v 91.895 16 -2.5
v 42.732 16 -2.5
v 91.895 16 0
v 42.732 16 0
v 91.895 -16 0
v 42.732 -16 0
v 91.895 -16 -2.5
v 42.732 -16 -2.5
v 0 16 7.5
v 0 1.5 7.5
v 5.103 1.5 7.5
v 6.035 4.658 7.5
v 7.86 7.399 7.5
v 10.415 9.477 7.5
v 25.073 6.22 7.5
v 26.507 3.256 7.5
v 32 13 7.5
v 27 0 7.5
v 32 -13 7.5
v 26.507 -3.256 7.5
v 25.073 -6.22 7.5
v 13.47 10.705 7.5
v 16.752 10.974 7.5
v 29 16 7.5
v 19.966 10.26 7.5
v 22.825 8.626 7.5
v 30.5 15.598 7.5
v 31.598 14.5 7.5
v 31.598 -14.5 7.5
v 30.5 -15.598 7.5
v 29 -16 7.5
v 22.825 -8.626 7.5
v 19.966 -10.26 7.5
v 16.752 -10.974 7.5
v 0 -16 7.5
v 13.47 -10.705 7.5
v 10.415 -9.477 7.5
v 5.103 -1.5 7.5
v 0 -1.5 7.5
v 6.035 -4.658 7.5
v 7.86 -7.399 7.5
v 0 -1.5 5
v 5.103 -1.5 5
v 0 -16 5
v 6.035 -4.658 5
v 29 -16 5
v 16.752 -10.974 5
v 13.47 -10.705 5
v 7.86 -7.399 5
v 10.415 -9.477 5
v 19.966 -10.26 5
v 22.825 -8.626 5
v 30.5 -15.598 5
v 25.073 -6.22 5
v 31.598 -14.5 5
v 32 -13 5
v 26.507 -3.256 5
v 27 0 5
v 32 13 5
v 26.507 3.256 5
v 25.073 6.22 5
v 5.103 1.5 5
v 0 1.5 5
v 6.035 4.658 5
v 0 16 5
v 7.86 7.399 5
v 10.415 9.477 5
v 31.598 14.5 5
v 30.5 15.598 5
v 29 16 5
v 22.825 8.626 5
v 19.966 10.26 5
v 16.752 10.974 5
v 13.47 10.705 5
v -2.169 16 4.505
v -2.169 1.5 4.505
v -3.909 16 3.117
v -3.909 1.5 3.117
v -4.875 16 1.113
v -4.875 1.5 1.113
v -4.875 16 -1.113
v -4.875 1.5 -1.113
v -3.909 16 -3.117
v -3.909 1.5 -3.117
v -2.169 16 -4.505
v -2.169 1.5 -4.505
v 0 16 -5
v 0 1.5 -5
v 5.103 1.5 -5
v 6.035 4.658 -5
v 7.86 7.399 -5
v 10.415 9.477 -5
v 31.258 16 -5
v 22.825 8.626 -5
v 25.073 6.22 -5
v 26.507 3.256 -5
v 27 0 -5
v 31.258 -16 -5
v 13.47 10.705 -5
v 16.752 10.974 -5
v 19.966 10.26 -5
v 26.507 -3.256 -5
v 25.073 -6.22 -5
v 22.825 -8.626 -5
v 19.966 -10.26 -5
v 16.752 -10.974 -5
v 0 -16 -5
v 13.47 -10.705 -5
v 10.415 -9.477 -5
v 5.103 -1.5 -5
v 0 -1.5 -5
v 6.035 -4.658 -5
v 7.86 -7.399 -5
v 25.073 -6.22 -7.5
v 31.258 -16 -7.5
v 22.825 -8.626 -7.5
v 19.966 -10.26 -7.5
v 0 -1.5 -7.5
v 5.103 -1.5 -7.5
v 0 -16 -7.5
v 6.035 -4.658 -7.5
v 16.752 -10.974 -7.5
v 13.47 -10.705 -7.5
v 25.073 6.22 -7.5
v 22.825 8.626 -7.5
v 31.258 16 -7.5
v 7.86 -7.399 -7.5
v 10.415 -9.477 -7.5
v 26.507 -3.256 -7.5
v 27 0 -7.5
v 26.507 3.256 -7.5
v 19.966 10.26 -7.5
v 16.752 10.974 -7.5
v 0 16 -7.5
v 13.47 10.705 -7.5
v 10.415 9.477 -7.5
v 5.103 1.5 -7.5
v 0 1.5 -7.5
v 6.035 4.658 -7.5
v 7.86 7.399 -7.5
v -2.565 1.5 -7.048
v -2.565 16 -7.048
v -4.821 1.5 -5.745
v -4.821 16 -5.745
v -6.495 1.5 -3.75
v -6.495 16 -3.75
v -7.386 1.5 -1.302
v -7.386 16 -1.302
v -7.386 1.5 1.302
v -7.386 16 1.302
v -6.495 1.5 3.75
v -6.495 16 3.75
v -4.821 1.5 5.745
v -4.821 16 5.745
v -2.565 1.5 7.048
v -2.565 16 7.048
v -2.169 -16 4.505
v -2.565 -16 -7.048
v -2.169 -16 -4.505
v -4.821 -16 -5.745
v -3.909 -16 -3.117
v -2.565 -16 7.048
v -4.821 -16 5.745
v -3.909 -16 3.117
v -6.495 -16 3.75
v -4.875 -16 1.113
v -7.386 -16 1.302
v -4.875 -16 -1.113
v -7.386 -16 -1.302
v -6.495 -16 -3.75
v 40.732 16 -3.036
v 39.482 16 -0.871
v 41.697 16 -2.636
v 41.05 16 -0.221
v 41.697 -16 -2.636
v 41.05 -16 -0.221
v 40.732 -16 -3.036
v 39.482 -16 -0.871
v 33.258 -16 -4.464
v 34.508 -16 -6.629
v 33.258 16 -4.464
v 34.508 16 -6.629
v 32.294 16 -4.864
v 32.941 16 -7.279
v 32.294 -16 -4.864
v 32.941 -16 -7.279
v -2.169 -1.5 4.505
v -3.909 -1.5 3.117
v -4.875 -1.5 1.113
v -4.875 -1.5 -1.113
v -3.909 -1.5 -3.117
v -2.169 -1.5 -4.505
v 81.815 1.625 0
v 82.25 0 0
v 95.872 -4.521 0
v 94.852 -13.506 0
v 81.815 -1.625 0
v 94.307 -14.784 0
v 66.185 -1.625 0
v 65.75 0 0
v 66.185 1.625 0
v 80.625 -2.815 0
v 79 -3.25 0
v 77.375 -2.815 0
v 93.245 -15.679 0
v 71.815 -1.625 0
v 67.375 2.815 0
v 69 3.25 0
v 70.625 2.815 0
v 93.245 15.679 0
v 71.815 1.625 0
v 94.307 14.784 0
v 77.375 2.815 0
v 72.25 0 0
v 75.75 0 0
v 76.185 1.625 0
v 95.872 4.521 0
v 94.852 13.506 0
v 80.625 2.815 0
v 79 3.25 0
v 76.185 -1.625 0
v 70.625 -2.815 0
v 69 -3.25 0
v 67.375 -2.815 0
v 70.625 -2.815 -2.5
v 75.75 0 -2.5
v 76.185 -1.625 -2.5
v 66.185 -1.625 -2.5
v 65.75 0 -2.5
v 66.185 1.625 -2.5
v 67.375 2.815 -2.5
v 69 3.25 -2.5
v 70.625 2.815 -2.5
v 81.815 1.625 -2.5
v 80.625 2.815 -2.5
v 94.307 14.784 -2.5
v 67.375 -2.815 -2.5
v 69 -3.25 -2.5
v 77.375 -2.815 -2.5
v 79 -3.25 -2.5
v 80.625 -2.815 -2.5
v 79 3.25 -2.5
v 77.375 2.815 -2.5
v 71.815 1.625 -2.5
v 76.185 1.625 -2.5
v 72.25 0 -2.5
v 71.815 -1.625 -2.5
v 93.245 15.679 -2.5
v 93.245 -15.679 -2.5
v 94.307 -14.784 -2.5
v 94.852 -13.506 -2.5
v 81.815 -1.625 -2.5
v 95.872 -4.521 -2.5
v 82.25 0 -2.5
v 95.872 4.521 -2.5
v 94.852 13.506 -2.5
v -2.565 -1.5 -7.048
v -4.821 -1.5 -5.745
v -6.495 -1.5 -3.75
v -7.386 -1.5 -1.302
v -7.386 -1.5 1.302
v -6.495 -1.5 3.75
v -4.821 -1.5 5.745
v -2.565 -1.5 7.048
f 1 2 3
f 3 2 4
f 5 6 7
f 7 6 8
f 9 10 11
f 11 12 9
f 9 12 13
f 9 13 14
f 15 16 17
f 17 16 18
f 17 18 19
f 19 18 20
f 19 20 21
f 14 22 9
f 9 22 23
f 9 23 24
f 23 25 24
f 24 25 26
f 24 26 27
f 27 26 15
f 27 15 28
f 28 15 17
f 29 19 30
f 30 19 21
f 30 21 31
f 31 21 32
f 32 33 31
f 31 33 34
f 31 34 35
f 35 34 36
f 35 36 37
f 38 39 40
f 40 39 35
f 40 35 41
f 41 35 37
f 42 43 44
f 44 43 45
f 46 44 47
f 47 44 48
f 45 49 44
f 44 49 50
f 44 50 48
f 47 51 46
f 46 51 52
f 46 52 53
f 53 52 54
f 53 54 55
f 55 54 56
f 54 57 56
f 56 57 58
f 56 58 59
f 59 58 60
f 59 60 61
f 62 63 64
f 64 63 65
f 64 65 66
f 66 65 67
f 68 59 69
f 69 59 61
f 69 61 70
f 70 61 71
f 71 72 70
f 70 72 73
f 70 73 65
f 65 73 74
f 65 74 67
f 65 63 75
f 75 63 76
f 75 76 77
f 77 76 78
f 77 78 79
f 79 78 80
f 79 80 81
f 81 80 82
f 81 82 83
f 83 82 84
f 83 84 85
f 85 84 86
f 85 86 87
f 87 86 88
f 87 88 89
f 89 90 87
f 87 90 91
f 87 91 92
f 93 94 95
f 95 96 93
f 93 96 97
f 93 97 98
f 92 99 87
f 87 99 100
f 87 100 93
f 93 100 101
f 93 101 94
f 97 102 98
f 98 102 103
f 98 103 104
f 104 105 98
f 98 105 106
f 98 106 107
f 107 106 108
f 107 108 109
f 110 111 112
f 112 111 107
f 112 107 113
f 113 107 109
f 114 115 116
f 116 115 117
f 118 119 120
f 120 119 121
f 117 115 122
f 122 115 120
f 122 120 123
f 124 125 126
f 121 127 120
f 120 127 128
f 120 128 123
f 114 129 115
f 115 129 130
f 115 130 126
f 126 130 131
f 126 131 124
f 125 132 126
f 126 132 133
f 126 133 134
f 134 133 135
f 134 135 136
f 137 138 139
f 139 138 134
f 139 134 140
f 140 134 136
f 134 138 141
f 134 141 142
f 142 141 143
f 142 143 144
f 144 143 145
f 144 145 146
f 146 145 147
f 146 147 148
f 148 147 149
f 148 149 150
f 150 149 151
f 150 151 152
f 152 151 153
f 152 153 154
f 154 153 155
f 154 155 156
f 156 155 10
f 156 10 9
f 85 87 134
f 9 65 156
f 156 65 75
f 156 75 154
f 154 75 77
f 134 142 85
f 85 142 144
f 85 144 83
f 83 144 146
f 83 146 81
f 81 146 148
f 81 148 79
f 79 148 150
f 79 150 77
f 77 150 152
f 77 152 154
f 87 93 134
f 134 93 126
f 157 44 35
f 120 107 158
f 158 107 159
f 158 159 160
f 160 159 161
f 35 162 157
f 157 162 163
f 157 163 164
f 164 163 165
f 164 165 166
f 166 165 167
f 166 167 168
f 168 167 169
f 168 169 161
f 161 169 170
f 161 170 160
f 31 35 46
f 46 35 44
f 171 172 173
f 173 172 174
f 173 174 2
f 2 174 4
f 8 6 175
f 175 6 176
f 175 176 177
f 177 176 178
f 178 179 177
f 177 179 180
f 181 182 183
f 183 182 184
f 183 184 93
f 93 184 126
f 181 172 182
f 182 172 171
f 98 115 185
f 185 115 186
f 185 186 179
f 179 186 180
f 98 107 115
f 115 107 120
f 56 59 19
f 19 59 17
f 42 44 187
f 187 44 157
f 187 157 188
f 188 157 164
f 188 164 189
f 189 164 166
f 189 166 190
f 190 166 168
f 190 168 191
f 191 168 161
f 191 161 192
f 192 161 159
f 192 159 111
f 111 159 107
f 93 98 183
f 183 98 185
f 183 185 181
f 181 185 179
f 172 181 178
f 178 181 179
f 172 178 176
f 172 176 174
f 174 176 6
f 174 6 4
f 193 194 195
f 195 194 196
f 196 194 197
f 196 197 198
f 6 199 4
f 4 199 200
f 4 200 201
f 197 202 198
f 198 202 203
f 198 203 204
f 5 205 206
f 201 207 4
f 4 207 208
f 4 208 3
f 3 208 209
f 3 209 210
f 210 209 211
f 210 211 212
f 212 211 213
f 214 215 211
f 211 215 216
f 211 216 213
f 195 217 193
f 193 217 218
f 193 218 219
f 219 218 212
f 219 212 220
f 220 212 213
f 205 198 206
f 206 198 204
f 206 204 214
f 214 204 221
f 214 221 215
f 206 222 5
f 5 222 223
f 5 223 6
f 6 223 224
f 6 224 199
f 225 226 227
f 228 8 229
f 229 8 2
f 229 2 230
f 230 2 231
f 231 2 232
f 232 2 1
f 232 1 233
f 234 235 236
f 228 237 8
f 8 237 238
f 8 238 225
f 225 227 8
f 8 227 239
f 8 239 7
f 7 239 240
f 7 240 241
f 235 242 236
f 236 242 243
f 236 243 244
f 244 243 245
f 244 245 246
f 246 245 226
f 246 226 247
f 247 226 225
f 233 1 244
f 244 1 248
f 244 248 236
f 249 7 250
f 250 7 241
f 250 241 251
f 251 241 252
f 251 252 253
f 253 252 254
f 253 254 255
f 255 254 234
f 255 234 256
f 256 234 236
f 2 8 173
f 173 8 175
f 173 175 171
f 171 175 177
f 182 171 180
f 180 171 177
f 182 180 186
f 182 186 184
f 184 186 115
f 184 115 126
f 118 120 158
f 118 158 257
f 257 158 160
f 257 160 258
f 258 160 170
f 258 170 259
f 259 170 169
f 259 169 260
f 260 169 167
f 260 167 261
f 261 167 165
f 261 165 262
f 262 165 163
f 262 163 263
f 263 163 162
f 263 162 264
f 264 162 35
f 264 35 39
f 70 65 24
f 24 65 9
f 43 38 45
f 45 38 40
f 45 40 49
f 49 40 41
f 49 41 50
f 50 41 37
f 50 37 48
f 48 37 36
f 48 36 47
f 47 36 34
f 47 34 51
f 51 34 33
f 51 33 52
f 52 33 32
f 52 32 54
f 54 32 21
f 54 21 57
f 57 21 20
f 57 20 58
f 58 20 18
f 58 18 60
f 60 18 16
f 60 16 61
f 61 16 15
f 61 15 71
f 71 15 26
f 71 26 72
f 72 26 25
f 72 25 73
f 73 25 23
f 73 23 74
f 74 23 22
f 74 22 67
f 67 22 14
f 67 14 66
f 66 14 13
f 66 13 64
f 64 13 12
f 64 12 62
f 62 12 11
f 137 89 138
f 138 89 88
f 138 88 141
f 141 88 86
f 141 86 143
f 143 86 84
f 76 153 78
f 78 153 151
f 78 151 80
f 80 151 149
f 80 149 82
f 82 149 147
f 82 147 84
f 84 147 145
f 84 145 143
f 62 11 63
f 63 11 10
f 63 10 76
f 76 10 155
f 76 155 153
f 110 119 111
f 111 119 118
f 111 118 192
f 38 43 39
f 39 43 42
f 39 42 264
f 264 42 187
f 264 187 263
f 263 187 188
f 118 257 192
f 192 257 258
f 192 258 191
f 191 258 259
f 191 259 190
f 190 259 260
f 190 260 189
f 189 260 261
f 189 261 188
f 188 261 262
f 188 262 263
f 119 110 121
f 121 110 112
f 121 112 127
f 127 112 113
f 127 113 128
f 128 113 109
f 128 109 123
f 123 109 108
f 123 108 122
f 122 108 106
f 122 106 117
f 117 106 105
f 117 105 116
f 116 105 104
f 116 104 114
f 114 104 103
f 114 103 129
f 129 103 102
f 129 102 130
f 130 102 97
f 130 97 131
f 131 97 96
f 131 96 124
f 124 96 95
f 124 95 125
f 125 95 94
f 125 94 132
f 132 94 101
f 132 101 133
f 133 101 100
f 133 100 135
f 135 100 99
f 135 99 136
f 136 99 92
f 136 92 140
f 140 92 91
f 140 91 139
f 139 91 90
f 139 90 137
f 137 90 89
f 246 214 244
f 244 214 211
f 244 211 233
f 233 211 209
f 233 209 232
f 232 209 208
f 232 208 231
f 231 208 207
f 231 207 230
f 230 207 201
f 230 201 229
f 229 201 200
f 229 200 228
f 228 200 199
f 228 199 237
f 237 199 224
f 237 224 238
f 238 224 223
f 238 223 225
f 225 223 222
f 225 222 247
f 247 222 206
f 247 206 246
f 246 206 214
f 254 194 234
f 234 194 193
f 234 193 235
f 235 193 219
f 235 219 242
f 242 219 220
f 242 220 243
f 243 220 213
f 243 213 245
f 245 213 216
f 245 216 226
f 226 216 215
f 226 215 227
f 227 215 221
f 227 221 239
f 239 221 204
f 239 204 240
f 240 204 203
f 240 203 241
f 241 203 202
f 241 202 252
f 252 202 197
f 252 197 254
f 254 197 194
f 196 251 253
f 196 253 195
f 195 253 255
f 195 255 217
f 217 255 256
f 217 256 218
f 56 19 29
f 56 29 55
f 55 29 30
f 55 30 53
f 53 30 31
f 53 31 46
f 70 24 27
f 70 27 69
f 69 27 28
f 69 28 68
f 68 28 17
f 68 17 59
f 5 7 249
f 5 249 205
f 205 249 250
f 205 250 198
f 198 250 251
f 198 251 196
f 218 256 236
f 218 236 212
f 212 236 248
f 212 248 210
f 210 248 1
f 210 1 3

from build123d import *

# Parameters (mm, degrees)
BASE_FLANGE1_DEPTH      = 16
CUT_EXTRUDE1_START      = -15
CUT_EXTRUDE1_DEPTH      = 15
SKETCH7_R               = 3.25
CUT_EXTRUDE2_DEPTH      = 10
CUT_EXTRUDE3_DEPTH      = 98.612755314
CUT_EXTRUDE3_DEPTH_BACK = 2.5
FILLET1_R               = 3


# Read off the part's stored shape, not the designer's step: Cut-Extrude1
# Sheet-metal steps are written as plain solids
with BuildPart() as part:
    # Sketch1 → Base-Flange1 (new, symmetric)
    with BuildSketch(Plane(origin=(0, 0, 0), x_dir=(1, 0, 0), z_dir=(0, 1, 0))):
        with BuildLine():
            Line((32, -7.5), (0, -7.5))
            ThreePointArc((0, -7.5), (-7.5, 0), (0, 7.5))
            Line((0, 7.5), (31.258330249, 7.5))
            ThreePointArc((31.258330249, 7.5), (32.940654042, 7.278517871), (34.508330249, 6.629165125))
            Line((34.508330249, 6.629165125), (40.732050808, 3.035898385))
            ThreePointArc((40.732050808, 3.035898385), (41.696774627, 2.636296695), (42.732050808, 2.5))
            Line((42.732050808, 2.5), (96, 2.5))
            Line((96, 2.5), (96, 0))
            Line((96, 0), (42.732050808, 0))
            ThreePointArc((42.732050808, 0), (41.049727014, 0.221482129), (39.482050808, 0.870834875))
            Line((39.482050808, 0.870834875), (33.258330249, 4.464101615))
            ThreePointArc((33.258330249, 4.464101615), (32.29360643, 4.863703305), (31.258330249, 5))
            Line((31.258330249, 5), (0, 5))
            ThreePointArc((0, 5), (-5, 0), (0, -5))
            Line((0, -5), (32, -5))
            Line((32, -5), (32, -7.5))
        make_face()
    extrude(amount=BASE_FLANGE1_DEPTH, both=True)

    # Cut-Extrude1 outline → Cut-Extrude1 (cut)
    with BuildSketch(Plane.XY.offset(7.5).offset(CUT_EXTRUDE1_START)):
        with BuildLine():
            Line((5.102752641, 1.5), (-7.5, 1.5))
            Line((-7.5, 1.5), (-7.5, -1.5))
            Line((-7.5, -1.5), (5.102752641, -1.5))
            ThreePointArc((5.102752641, -1.5), (27, 0), (5.102752641, 1.5))
        make_face()
    extrude(amount=CUT_EXTRUDE1_DEPTH, mode=Mode.SUBTRACT)

    # Sketch7 → Cut-Extrude2 (cut)
    with BuildSketch(Plane.XY):
        with Locations((79, 0)):
            Circle(SKETCH7_R)
        with Locations((69, 0)):
            Circle(SKETCH7_R)
    extrude(amount=-CUT_EXTRUDE2_DEPTH, mode=Mode.SUBTRACT)

    # Sketch8 → Cut-Extrude3 (cut, two sides: drawn at the far end of the back side and taken through both)
    with BuildSketch(Plane.XY.offset(-CUT_EXTRUDE3_DEPTH_BACK)):
        with BuildLine():
            Line((49.66733752, 235.064404157), (94.383671769, 16))
            ThreePointArc((94.383671769, 16), (96, 0), (94.383671769, -16))
            Line((94.383671769, -16), (49.66733752, -235.064404157))
            Line((49.66733752, -235.064404157), (496.830680013, -235.064404157))
            Line((496.830680013, -235.064404157), (496.830680013, 235.064404157))
            Line((496.830680013, 235.064404157), (49.66733752, 235.064404157))
        make_face()
    extrude(amount=CUT_EXTRUDE3_DEPTH + CUT_EXTRUDE3_DEPTH_BACK, mode=Mode.SUBTRACT)

    # Fillet1
    fillet1_edges = [part.edges().sort_by_distance(p)[0] for p in [
        (94.383671769, 16, -1.25),
        (94.383671769, -16, -1.25),
        (32, -16, 6.25),
        (32, 16, 6.25),
    ]]
    fillet(fillet1_edges, radius=FILLET1_R)


solid = part.part
